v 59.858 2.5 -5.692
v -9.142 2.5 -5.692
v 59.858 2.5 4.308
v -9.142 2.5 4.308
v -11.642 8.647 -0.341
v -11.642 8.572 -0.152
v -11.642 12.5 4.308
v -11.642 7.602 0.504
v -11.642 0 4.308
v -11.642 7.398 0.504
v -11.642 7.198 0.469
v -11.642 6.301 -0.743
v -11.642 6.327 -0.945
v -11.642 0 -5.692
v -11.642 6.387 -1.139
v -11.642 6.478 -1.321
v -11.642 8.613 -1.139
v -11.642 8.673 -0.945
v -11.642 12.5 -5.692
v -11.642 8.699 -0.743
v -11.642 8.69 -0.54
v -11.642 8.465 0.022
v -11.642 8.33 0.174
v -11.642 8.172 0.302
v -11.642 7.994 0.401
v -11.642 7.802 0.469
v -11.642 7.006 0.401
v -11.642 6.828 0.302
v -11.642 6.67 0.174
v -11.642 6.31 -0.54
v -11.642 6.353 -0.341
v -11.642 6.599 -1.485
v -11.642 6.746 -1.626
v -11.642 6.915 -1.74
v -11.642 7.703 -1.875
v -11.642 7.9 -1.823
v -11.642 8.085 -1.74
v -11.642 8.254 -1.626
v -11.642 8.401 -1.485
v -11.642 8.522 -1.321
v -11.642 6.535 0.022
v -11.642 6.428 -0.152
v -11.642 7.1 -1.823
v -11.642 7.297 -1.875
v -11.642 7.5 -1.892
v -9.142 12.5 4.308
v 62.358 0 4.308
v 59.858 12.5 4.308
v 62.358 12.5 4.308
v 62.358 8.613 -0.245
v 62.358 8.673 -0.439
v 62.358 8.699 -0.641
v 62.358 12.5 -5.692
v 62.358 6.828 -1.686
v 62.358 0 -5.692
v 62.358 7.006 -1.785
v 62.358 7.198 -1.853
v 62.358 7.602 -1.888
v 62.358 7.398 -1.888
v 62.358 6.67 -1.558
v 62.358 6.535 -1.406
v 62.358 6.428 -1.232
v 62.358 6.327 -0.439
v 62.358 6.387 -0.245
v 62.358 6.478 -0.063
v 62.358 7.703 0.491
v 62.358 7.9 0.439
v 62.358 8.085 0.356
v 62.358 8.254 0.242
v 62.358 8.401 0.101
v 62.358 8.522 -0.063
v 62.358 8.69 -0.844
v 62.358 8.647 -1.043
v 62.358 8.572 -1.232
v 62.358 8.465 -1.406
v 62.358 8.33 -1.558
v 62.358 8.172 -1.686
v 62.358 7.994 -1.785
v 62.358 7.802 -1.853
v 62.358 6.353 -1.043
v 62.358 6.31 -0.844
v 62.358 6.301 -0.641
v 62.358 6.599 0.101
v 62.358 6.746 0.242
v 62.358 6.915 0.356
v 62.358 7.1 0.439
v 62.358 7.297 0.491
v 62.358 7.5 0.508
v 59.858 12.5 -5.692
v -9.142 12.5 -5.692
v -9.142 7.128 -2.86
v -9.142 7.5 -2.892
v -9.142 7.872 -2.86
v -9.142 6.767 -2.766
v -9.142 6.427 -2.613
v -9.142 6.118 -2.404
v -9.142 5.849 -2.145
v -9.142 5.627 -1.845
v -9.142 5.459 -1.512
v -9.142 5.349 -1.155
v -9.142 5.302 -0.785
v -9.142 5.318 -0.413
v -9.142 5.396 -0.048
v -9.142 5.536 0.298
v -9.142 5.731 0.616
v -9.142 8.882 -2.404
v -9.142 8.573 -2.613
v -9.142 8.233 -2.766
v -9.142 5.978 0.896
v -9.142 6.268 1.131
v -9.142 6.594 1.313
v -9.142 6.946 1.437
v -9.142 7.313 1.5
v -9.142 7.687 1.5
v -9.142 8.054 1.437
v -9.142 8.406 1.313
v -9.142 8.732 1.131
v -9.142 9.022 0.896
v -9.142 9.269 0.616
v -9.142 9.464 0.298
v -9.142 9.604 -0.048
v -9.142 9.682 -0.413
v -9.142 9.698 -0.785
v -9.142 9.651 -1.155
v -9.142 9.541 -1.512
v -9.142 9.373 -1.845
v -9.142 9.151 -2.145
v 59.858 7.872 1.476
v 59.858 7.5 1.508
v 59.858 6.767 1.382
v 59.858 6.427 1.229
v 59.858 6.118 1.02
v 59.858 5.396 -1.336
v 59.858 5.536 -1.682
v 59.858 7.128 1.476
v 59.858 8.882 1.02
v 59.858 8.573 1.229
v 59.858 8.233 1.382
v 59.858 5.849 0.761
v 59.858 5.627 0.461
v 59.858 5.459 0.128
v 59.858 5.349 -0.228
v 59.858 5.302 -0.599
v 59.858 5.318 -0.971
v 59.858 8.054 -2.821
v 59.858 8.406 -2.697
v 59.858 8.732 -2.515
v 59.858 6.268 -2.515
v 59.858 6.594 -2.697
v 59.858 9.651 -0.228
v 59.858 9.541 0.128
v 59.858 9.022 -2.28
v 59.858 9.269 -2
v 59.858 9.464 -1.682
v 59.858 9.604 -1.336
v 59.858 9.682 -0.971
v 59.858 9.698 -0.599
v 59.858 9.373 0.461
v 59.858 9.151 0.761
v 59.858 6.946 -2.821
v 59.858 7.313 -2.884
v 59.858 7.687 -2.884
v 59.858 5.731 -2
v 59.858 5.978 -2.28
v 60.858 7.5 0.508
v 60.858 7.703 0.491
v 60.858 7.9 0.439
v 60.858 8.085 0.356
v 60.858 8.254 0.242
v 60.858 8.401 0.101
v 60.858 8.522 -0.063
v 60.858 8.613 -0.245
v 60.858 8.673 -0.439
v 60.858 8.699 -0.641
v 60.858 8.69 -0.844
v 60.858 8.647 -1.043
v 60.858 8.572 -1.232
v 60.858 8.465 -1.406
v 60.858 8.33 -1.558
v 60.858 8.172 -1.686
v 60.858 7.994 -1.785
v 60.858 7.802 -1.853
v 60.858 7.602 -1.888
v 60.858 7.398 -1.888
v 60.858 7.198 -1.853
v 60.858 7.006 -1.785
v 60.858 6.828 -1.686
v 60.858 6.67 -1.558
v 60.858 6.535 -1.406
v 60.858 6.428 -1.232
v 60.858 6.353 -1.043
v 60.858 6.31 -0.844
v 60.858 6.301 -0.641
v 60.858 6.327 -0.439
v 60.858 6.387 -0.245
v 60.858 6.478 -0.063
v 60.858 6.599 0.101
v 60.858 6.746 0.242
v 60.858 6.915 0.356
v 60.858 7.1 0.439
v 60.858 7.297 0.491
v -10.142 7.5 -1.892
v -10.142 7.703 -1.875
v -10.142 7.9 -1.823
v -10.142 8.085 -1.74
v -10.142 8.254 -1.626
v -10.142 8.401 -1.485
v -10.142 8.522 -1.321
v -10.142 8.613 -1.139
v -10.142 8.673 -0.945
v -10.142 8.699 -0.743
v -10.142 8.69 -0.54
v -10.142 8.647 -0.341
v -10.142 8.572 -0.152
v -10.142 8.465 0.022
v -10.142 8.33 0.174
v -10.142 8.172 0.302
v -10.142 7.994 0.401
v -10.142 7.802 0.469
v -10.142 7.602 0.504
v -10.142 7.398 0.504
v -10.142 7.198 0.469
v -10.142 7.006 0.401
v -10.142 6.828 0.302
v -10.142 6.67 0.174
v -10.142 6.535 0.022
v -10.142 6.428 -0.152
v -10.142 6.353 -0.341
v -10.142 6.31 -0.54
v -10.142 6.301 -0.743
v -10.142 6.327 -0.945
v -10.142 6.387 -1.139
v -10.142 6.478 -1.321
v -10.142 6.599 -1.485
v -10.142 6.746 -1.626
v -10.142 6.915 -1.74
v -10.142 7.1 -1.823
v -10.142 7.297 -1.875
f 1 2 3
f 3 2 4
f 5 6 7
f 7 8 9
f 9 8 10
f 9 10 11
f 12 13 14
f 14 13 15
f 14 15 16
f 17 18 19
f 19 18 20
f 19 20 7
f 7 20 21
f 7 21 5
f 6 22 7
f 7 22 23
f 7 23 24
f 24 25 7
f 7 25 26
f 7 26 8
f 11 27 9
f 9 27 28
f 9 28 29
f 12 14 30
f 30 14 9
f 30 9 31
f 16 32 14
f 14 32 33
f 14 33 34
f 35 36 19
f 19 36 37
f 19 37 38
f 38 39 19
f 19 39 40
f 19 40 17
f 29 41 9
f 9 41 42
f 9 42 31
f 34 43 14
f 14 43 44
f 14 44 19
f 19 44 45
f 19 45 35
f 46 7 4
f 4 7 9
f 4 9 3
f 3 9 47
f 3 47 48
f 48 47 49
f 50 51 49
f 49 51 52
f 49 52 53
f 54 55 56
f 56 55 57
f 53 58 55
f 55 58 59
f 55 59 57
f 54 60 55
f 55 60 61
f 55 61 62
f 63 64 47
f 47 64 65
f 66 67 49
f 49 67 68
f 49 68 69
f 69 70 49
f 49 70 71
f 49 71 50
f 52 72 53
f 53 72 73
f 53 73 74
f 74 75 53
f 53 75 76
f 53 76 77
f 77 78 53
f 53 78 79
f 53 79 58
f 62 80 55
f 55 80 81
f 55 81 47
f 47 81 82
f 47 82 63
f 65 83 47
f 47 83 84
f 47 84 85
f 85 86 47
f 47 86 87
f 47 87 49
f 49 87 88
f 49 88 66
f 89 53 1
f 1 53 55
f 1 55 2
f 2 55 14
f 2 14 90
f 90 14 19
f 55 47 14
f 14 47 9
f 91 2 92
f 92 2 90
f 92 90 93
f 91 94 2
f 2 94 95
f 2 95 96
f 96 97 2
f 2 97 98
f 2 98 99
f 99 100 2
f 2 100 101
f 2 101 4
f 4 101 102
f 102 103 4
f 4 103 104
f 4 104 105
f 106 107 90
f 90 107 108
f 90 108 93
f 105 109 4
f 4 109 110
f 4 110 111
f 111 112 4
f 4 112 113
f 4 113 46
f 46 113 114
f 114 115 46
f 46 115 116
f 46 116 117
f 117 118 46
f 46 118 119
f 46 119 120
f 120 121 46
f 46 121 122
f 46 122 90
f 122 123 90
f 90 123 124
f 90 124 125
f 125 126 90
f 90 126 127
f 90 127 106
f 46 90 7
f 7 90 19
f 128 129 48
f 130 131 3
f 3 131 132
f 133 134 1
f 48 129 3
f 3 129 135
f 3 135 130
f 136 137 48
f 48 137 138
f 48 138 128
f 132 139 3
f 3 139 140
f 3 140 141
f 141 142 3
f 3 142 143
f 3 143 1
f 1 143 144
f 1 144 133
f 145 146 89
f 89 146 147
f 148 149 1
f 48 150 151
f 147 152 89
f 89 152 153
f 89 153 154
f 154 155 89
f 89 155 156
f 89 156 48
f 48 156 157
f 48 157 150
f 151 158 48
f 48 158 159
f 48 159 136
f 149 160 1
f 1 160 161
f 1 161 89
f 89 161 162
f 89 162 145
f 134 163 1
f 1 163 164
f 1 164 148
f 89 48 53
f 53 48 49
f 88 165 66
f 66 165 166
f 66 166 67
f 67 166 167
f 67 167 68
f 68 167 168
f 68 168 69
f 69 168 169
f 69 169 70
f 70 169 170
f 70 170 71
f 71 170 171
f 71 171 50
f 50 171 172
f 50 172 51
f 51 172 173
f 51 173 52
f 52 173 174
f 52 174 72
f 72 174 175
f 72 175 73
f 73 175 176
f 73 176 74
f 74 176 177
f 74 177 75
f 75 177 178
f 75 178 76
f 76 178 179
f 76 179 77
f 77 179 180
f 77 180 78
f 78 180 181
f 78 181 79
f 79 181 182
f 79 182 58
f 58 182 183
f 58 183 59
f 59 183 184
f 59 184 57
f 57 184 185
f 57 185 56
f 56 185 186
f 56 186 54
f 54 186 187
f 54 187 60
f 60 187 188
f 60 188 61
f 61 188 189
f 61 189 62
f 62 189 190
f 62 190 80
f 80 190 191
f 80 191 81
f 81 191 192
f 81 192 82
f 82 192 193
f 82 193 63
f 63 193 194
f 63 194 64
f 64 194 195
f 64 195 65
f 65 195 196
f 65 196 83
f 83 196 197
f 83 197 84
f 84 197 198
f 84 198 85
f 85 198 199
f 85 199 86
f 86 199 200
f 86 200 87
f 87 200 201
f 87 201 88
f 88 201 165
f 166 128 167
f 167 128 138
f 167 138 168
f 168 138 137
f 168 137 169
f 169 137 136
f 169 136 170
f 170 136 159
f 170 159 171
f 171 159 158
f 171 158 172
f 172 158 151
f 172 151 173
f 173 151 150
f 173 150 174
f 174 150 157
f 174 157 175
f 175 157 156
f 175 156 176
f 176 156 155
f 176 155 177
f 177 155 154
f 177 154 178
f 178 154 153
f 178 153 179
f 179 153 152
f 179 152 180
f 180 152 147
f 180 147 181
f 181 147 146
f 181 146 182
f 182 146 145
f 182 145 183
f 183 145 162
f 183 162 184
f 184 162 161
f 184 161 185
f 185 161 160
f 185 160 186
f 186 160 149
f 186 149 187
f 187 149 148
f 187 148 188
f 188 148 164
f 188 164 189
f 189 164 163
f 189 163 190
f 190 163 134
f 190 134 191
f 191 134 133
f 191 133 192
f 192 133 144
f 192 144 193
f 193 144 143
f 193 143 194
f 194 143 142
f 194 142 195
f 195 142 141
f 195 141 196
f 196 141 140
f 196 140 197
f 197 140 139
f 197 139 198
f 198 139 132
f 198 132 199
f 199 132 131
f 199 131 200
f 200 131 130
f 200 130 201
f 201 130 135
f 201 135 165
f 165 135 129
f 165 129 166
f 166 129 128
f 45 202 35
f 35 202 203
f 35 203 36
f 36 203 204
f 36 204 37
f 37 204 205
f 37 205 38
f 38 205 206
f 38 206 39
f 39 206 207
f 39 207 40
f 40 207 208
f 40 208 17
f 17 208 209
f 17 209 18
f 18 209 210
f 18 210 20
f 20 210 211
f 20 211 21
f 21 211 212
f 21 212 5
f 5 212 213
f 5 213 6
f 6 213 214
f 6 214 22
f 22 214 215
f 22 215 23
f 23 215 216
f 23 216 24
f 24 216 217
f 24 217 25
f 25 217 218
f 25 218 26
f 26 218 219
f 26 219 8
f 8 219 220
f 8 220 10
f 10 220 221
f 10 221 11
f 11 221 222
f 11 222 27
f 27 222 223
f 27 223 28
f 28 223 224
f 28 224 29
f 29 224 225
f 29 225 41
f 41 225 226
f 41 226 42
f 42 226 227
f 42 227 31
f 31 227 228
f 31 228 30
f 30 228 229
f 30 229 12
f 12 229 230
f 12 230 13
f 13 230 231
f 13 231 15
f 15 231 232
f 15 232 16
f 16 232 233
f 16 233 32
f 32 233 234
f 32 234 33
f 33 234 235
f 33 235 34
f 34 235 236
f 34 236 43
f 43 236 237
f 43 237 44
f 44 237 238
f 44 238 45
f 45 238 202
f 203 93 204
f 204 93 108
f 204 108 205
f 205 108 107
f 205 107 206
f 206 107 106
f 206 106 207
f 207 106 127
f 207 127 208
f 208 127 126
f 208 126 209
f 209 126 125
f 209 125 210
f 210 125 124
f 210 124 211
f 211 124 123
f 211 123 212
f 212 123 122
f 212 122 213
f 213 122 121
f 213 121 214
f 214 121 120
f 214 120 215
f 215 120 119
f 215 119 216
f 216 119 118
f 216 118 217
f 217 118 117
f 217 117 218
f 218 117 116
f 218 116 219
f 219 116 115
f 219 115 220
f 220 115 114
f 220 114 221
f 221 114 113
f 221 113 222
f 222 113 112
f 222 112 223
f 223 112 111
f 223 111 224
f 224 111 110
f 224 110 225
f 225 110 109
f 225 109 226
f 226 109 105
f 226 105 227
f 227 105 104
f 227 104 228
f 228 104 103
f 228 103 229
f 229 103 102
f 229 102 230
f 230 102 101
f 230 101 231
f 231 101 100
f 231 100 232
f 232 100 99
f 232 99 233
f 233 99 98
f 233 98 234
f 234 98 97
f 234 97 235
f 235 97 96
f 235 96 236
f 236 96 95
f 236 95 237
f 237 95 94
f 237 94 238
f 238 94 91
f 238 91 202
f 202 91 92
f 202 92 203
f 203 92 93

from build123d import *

# Parameters (mm, degrees)
SKETCH2_W                                       = 74
SKETCH2_H                                       = 10
BOSS_EXTRUDE1_DEPTH                             = 2.5
SKETCH3_W                                       = 2.5
SKETCH3_H                                       = 10
BOSS_EXTRUDE2_DEPTH                             = 10
CSK_FOR_M2_FLAT_HEAD_MACHINE_SCREW1_D           = 2.4
CSK_FOR_M2_FLAT_HEAD_MACHINE_SCREW1_DEPTH       = 2.5
CSK_FOR_M2_FLAT_HEAD_MACHINE_SCREW1_CSINK_D     = 4.4
CSK_FOR_M2_FLAT_HEAD_MACHINE_SCREW1_CSINK_ANGLE = 90
CSK_FOR_M2_FLAT_HEAD_MACHINE_SCREW2_D           = 2.4
CSK_FOR_M2_FLAT_HEAD_MACHINE_SCREW2_DEPTH       = 2.5
CSK_FOR_M2_FLAT_HEAD_MACHINE_SCREW2_CSINK_D     = 4.4
CSK_FOR_M2_FLAT_HEAD_MACHINE_SCREW2_CSINK_ANGLE = 90


with BuildPart() as part:
    # Sketch2 → Boss-Extrude1 (new body)
    with BuildSketch(Plane(origin=(0, 0, 0), x_dir=(1, 0, 0), z_dir=(0, 1, 0))):
        with Locations((25.358263924, 0.691988738)):
            Rectangle(SKETCH2_W, SKETCH2_H)
    extrude(amount=BOSS_EXTRUDE1_DEPTH)

    # Sketch3 → Boss-Extrude2 (add)
    with BuildSketch(Plane(origin=(0, 2.5, 0), x_dir=(1, 0, 0), z_dir=(0, 1, 0))):
        with Locations((-10.391736076, 0.691988738)):
            Rectangle(SKETCH3_W, SKETCH3_H)
        with Locations((61.108263924, 0.691988738)):
            Rectangle(SKETCH3_W, SKETCH3_H)
    extrude(amount=BOSS_EXTRUDE2_DEPTH)

    # CSK for M2 Flat Head Machine Screw1
    with Locations(Plane.ZY.offset(-59.858263924)):
        with Locations((-0.691988738, 7.5)):
            CounterSinkHole(CSK_FOR_M2_FLAT_HEAD_MACHINE_SCREW1_D / 2, CSK_FOR_M2_FLAT_HEAD_MACHINE_SCREW1_CSINK_D / 2, depth=CSK_FOR_M2_FLAT_HEAD_MACHINE_SCREW1_DEPTH, counter_sink_angle=CSK_FOR_M2_FLAT_HEAD_MACHINE_SCREW1_CSINK_ANGLE)

    # CSK for M2 Flat Head Machine Screw2
    with Locations(Plane(origin=(-9.141736076, 0, 0), x_dir=(0, 0, -1), z_dir=(1, 0, 0))):
        with Locations((0.691988738, 7.5)):
            CounterSinkHole(CSK_FOR_M2_FLAT_HEAD_MACHINE_SCREW2_D / 2, CSK_FOR_M2_FLAT_HEAD_MACHINE_SCREW2_CSINK_D / 2, depth=CSK_FOR_M2_FLAT_HEAD_MACHINE_SCREW2_DEPTH, counter_sink_angle=CSK_FOR_M2_FLAT_HEAD_MACHINE_SCREW2_CSINK_ANGLE)


solid = part.part
